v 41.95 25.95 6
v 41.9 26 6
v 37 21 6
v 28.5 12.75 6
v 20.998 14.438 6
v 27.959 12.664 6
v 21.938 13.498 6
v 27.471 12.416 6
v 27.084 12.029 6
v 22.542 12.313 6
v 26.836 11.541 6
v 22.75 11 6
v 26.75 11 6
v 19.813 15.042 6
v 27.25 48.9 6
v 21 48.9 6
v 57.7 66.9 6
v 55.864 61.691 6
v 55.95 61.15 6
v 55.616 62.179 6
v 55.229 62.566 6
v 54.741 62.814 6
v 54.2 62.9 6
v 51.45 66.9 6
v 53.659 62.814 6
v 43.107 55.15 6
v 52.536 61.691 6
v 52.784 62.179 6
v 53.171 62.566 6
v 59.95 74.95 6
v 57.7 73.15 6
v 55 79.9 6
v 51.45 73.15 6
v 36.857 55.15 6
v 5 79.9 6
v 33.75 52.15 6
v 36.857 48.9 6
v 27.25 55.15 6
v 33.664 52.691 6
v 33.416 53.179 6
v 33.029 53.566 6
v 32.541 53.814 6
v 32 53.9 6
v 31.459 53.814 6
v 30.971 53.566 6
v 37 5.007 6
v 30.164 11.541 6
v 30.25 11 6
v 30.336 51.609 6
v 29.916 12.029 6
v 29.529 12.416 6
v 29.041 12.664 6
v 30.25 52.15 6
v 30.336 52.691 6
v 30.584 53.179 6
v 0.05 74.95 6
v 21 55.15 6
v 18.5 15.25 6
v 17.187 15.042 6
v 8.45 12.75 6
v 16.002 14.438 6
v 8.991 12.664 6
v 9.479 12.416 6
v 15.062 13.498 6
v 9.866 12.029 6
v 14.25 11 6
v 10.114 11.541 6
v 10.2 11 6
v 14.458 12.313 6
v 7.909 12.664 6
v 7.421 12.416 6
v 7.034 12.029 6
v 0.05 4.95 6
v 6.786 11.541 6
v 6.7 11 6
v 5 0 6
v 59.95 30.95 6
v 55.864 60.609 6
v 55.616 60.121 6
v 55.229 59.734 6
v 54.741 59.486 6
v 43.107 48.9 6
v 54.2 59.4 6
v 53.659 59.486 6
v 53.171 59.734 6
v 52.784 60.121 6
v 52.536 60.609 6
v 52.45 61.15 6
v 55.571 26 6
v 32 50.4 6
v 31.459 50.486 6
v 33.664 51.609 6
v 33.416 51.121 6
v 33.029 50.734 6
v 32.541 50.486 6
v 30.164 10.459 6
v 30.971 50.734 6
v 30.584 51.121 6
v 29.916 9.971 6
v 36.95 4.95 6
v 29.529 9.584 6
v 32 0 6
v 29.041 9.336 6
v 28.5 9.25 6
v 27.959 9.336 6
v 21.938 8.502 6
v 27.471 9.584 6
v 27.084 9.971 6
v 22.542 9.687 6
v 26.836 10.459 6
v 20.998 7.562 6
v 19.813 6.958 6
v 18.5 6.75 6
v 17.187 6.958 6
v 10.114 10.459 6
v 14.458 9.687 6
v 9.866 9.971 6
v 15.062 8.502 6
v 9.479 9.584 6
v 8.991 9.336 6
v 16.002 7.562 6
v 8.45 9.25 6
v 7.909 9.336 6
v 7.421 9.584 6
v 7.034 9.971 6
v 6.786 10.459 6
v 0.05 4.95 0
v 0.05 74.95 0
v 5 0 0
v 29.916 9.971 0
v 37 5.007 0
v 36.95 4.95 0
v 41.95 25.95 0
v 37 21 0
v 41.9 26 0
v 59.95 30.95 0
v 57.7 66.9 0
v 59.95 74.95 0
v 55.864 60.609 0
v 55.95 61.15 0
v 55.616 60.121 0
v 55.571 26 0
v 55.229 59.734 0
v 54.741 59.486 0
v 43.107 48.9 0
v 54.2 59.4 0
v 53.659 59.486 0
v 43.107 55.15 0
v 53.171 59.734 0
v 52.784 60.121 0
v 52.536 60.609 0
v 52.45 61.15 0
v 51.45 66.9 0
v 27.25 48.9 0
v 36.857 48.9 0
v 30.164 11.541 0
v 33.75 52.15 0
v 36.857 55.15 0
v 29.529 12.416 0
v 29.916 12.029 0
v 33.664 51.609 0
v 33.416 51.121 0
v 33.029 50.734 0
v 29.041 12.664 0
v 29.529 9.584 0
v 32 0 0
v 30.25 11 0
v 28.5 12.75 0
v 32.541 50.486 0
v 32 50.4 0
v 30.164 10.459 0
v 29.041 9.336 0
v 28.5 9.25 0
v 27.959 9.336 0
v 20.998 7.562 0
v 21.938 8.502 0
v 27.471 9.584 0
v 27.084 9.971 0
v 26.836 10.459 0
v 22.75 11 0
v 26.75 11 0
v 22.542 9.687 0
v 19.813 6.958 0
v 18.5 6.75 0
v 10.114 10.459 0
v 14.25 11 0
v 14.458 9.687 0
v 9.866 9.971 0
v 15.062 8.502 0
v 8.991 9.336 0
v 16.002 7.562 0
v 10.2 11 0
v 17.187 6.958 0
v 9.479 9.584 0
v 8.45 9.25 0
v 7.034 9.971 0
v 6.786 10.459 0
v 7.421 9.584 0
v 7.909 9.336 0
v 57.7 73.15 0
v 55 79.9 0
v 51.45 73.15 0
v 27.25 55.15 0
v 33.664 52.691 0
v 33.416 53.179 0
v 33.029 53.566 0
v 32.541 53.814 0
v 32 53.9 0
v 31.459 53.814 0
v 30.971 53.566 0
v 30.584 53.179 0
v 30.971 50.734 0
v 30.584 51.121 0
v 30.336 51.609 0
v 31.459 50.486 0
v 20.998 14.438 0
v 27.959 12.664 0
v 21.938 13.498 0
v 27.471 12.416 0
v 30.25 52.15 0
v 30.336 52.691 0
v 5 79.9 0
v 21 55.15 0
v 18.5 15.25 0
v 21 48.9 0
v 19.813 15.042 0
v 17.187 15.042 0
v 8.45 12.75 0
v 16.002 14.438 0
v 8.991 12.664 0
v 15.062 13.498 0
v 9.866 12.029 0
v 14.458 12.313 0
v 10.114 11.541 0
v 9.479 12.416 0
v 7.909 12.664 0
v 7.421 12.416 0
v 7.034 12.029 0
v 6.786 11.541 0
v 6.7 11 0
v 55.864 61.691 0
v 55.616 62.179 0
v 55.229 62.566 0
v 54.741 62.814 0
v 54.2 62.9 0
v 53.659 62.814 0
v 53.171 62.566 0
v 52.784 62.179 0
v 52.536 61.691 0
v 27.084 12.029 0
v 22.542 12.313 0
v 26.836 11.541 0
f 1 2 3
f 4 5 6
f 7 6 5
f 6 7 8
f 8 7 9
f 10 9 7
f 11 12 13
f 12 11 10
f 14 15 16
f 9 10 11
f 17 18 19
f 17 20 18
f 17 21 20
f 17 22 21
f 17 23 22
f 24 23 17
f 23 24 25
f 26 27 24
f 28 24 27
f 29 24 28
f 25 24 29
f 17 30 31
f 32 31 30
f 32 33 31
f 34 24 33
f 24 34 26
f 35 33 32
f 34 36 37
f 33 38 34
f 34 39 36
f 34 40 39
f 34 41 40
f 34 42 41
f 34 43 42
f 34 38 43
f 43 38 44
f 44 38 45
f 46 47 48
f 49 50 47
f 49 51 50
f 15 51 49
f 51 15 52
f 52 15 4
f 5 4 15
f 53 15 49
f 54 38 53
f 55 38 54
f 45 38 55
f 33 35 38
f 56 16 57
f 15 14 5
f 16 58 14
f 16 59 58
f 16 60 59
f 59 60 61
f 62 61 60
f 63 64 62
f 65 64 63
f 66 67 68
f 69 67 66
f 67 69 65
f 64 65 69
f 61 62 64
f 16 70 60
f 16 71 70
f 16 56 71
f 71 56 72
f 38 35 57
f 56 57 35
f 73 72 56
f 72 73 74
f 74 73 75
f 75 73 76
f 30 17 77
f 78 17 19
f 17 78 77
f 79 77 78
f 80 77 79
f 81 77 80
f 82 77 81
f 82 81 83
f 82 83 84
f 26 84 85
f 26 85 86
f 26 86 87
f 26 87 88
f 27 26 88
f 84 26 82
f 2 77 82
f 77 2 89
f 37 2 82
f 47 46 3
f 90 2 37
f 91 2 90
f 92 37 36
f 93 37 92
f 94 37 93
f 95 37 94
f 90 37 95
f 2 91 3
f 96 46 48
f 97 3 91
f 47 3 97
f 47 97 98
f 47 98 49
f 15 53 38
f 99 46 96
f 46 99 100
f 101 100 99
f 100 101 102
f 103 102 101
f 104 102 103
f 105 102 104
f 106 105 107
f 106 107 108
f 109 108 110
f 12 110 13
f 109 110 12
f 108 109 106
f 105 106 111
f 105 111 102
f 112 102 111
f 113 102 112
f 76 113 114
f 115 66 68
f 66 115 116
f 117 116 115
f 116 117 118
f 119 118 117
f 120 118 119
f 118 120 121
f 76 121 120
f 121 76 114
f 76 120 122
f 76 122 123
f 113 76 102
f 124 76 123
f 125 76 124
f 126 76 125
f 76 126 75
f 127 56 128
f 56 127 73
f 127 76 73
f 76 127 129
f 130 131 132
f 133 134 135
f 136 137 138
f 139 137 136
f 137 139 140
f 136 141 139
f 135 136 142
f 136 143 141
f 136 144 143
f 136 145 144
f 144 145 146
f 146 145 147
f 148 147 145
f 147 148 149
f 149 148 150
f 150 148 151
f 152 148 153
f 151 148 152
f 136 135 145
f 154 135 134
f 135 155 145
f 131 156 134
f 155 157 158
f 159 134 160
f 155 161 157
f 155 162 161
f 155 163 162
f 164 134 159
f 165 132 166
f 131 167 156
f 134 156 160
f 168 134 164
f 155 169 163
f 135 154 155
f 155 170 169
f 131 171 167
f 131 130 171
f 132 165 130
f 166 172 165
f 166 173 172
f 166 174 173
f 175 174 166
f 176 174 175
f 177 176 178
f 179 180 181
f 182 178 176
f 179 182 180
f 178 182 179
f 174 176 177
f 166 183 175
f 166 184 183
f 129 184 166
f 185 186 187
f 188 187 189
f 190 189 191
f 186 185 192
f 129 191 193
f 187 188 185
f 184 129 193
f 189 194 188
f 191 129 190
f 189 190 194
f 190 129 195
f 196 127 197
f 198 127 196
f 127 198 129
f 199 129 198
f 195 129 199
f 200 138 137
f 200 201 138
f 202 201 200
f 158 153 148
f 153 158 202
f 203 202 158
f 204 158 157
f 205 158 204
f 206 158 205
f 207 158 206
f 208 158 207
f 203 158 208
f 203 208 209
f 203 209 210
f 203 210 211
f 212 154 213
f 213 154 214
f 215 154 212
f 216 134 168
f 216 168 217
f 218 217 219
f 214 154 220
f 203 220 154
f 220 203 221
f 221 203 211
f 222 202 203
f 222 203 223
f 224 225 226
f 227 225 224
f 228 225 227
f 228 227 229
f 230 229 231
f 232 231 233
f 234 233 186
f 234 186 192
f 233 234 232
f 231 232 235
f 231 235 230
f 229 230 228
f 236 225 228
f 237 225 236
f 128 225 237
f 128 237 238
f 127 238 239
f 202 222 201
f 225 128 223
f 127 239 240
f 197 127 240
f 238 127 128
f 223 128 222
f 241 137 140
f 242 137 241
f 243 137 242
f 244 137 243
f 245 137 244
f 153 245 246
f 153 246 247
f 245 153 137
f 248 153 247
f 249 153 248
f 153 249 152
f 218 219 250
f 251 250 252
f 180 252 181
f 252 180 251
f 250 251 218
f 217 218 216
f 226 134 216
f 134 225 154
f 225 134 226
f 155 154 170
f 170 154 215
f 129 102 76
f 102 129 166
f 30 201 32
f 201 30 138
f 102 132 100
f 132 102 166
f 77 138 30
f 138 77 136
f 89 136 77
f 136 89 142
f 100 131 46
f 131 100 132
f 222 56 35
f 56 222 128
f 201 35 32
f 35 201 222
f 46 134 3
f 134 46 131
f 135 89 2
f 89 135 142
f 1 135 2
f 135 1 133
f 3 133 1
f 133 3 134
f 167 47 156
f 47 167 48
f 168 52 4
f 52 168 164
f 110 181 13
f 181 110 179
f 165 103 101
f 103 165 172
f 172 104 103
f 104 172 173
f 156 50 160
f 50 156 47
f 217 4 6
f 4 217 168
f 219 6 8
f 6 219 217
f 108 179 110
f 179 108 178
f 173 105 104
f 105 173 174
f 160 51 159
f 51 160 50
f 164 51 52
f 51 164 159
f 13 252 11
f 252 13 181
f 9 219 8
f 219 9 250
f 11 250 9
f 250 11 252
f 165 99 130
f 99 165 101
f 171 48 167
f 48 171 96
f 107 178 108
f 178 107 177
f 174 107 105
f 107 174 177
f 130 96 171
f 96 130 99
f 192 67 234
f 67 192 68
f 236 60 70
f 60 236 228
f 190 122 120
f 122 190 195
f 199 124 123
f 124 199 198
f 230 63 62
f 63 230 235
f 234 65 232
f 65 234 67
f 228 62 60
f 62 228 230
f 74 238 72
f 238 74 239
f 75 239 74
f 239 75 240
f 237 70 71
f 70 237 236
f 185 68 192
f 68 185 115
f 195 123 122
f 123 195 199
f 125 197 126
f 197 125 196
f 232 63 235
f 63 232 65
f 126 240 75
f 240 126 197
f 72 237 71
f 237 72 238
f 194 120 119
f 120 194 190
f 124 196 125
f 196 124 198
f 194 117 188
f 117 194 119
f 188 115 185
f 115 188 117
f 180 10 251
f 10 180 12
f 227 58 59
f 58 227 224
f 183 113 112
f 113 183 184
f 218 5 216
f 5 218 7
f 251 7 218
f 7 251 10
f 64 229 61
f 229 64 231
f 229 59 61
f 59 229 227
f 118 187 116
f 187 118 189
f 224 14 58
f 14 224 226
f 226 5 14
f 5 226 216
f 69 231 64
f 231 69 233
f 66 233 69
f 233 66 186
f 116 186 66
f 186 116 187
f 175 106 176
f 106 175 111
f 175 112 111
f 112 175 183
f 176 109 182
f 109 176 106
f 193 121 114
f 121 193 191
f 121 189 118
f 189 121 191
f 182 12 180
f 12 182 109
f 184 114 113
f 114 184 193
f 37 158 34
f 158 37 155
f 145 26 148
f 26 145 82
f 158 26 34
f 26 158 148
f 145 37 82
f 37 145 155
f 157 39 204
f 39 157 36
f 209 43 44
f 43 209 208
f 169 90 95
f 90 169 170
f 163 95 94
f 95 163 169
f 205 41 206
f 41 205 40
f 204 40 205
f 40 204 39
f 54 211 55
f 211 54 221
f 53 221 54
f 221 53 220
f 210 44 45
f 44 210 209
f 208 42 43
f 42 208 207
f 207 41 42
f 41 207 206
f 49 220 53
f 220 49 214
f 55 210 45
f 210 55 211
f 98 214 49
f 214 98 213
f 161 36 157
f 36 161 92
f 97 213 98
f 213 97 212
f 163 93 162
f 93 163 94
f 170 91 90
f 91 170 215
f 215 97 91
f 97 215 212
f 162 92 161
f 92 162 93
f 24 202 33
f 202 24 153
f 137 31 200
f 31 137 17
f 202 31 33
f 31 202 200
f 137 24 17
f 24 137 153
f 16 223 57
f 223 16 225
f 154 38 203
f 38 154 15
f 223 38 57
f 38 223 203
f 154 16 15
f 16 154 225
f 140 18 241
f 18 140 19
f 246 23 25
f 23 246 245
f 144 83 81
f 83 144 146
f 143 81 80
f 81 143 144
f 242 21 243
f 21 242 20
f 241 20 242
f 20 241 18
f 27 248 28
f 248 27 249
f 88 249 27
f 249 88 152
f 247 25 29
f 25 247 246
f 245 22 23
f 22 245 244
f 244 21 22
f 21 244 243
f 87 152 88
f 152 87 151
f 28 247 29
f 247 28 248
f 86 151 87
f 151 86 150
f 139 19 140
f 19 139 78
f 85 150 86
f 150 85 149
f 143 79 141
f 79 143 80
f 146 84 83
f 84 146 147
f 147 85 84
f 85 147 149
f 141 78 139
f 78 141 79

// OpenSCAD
module buildTop() {
    difference() {
        topBase();
        translate([28.5,11,-0.5])
            screwCutout();
        translate([8.45,11,-0.5])
            screwCutout();
        translate([18.5,11,-0.5])
            cylinder(7,4.25,4.25, $fn=20);
        translate([36.8574,48.9,-0.5])
            cubeCutout();
        translate([32,52.15,-0.5])
            screwCutout();
        translate([51.45,66.9,-0.5])
            cubeCutout();
        translate([21,48.9,-0.5])
            cubeCutout();
        translate([54.2,61.15,-0.5])
            screwCutout();
    }
}

module topBase() {
    union() {
        difference() {
            hull() {
                translate([5,0,0])
                    rotate([0,0,45])
                        cube([7,7,6]);
                translate([55,70,0])
                    rotate([0,0,45])
                        cube([7,7,6]);
                translate([5,70,0])
                    rotate([0,0,45])
                        cube([7,7,6]);
                translate([32,0,0])
                    rotate([0,0,45])
                        cube([7,7,6]);
                translate([55,26,0])
                    rotate([0,0,45])
                        cube([7,7,6]);
            }
            translate([37,0,-0.5])
                cube([20,26,7]);
        }
        translate([37,21,0])
            rotate([0,0,45])
                cube([7,7,6]);
    }
}

module cubeCutout()
    cube([6.25,6.25,7]);

module screwCutout()
    cylinder(7,1.75,1.75, $fn=20);

buildTop();

/*
color([1,0,0])
translate([28.5,11,-0.5])
screwCutout();

color([1,0,0])
translate([8.45,11,-0.5])
screwCutout();

color([1,0,0])
translate([18.5,11,-0.5])
cylinder(7,4,4, $fn=20);

color([1,0,0])
translate([36.75,48.9,-0.5])
cubeCutout();

color([1,0,0])
translate([32,52.15,-0.5])
screwCutout();

color([1,0,0])
translate([51.45,66.9,-0.5])
cubeCutout();

color([1,0,0])
translate([21,48.9,-0.5])
cubeCutout();

color([1,0,0])
translate([54.2,61.15,-0.5])
screwCutout();

*/



/*
//measurements
color([0,1,0])
translate([22.5,9,4])
cube([4.25,4,6]);

color([0,1,0])
translate([10.2,9,4])
cube([4.25,4,6]);

color([0,1,0])
translate([17,0,4])
cube([4,7,6]);

color([0,1,0])
translate([43.45,50,4])
cube([16.25,3,6]);

color([0,1,0])
translate([33.75,50,4])
cube([3,3,6]);

color([0,1,0])
translate([30,53.9,4])
cube([4,26,6]);

color([0,1,0])
translate([27.25,50,4])
cube([3,3,6]);

color([0,1,0])
translate([55.95,59,4])
cube([4,4,6]);

color([0,1,0])
translate([22,55.15,4])
cube([4,24.75,6]);

color([0,1,0])
translate([0,50,4])
cube([21,4,6]);

color([0,1,0])
translate([52,62.9,4])
cube([4,4,6]);

color([0,1,0])
translate([57.7,70,4])
cube([2.25,2.25,6]);

color([0,1,0])
translate([50,73.15,4])
cube([6.75,6.75,6]);
*/
